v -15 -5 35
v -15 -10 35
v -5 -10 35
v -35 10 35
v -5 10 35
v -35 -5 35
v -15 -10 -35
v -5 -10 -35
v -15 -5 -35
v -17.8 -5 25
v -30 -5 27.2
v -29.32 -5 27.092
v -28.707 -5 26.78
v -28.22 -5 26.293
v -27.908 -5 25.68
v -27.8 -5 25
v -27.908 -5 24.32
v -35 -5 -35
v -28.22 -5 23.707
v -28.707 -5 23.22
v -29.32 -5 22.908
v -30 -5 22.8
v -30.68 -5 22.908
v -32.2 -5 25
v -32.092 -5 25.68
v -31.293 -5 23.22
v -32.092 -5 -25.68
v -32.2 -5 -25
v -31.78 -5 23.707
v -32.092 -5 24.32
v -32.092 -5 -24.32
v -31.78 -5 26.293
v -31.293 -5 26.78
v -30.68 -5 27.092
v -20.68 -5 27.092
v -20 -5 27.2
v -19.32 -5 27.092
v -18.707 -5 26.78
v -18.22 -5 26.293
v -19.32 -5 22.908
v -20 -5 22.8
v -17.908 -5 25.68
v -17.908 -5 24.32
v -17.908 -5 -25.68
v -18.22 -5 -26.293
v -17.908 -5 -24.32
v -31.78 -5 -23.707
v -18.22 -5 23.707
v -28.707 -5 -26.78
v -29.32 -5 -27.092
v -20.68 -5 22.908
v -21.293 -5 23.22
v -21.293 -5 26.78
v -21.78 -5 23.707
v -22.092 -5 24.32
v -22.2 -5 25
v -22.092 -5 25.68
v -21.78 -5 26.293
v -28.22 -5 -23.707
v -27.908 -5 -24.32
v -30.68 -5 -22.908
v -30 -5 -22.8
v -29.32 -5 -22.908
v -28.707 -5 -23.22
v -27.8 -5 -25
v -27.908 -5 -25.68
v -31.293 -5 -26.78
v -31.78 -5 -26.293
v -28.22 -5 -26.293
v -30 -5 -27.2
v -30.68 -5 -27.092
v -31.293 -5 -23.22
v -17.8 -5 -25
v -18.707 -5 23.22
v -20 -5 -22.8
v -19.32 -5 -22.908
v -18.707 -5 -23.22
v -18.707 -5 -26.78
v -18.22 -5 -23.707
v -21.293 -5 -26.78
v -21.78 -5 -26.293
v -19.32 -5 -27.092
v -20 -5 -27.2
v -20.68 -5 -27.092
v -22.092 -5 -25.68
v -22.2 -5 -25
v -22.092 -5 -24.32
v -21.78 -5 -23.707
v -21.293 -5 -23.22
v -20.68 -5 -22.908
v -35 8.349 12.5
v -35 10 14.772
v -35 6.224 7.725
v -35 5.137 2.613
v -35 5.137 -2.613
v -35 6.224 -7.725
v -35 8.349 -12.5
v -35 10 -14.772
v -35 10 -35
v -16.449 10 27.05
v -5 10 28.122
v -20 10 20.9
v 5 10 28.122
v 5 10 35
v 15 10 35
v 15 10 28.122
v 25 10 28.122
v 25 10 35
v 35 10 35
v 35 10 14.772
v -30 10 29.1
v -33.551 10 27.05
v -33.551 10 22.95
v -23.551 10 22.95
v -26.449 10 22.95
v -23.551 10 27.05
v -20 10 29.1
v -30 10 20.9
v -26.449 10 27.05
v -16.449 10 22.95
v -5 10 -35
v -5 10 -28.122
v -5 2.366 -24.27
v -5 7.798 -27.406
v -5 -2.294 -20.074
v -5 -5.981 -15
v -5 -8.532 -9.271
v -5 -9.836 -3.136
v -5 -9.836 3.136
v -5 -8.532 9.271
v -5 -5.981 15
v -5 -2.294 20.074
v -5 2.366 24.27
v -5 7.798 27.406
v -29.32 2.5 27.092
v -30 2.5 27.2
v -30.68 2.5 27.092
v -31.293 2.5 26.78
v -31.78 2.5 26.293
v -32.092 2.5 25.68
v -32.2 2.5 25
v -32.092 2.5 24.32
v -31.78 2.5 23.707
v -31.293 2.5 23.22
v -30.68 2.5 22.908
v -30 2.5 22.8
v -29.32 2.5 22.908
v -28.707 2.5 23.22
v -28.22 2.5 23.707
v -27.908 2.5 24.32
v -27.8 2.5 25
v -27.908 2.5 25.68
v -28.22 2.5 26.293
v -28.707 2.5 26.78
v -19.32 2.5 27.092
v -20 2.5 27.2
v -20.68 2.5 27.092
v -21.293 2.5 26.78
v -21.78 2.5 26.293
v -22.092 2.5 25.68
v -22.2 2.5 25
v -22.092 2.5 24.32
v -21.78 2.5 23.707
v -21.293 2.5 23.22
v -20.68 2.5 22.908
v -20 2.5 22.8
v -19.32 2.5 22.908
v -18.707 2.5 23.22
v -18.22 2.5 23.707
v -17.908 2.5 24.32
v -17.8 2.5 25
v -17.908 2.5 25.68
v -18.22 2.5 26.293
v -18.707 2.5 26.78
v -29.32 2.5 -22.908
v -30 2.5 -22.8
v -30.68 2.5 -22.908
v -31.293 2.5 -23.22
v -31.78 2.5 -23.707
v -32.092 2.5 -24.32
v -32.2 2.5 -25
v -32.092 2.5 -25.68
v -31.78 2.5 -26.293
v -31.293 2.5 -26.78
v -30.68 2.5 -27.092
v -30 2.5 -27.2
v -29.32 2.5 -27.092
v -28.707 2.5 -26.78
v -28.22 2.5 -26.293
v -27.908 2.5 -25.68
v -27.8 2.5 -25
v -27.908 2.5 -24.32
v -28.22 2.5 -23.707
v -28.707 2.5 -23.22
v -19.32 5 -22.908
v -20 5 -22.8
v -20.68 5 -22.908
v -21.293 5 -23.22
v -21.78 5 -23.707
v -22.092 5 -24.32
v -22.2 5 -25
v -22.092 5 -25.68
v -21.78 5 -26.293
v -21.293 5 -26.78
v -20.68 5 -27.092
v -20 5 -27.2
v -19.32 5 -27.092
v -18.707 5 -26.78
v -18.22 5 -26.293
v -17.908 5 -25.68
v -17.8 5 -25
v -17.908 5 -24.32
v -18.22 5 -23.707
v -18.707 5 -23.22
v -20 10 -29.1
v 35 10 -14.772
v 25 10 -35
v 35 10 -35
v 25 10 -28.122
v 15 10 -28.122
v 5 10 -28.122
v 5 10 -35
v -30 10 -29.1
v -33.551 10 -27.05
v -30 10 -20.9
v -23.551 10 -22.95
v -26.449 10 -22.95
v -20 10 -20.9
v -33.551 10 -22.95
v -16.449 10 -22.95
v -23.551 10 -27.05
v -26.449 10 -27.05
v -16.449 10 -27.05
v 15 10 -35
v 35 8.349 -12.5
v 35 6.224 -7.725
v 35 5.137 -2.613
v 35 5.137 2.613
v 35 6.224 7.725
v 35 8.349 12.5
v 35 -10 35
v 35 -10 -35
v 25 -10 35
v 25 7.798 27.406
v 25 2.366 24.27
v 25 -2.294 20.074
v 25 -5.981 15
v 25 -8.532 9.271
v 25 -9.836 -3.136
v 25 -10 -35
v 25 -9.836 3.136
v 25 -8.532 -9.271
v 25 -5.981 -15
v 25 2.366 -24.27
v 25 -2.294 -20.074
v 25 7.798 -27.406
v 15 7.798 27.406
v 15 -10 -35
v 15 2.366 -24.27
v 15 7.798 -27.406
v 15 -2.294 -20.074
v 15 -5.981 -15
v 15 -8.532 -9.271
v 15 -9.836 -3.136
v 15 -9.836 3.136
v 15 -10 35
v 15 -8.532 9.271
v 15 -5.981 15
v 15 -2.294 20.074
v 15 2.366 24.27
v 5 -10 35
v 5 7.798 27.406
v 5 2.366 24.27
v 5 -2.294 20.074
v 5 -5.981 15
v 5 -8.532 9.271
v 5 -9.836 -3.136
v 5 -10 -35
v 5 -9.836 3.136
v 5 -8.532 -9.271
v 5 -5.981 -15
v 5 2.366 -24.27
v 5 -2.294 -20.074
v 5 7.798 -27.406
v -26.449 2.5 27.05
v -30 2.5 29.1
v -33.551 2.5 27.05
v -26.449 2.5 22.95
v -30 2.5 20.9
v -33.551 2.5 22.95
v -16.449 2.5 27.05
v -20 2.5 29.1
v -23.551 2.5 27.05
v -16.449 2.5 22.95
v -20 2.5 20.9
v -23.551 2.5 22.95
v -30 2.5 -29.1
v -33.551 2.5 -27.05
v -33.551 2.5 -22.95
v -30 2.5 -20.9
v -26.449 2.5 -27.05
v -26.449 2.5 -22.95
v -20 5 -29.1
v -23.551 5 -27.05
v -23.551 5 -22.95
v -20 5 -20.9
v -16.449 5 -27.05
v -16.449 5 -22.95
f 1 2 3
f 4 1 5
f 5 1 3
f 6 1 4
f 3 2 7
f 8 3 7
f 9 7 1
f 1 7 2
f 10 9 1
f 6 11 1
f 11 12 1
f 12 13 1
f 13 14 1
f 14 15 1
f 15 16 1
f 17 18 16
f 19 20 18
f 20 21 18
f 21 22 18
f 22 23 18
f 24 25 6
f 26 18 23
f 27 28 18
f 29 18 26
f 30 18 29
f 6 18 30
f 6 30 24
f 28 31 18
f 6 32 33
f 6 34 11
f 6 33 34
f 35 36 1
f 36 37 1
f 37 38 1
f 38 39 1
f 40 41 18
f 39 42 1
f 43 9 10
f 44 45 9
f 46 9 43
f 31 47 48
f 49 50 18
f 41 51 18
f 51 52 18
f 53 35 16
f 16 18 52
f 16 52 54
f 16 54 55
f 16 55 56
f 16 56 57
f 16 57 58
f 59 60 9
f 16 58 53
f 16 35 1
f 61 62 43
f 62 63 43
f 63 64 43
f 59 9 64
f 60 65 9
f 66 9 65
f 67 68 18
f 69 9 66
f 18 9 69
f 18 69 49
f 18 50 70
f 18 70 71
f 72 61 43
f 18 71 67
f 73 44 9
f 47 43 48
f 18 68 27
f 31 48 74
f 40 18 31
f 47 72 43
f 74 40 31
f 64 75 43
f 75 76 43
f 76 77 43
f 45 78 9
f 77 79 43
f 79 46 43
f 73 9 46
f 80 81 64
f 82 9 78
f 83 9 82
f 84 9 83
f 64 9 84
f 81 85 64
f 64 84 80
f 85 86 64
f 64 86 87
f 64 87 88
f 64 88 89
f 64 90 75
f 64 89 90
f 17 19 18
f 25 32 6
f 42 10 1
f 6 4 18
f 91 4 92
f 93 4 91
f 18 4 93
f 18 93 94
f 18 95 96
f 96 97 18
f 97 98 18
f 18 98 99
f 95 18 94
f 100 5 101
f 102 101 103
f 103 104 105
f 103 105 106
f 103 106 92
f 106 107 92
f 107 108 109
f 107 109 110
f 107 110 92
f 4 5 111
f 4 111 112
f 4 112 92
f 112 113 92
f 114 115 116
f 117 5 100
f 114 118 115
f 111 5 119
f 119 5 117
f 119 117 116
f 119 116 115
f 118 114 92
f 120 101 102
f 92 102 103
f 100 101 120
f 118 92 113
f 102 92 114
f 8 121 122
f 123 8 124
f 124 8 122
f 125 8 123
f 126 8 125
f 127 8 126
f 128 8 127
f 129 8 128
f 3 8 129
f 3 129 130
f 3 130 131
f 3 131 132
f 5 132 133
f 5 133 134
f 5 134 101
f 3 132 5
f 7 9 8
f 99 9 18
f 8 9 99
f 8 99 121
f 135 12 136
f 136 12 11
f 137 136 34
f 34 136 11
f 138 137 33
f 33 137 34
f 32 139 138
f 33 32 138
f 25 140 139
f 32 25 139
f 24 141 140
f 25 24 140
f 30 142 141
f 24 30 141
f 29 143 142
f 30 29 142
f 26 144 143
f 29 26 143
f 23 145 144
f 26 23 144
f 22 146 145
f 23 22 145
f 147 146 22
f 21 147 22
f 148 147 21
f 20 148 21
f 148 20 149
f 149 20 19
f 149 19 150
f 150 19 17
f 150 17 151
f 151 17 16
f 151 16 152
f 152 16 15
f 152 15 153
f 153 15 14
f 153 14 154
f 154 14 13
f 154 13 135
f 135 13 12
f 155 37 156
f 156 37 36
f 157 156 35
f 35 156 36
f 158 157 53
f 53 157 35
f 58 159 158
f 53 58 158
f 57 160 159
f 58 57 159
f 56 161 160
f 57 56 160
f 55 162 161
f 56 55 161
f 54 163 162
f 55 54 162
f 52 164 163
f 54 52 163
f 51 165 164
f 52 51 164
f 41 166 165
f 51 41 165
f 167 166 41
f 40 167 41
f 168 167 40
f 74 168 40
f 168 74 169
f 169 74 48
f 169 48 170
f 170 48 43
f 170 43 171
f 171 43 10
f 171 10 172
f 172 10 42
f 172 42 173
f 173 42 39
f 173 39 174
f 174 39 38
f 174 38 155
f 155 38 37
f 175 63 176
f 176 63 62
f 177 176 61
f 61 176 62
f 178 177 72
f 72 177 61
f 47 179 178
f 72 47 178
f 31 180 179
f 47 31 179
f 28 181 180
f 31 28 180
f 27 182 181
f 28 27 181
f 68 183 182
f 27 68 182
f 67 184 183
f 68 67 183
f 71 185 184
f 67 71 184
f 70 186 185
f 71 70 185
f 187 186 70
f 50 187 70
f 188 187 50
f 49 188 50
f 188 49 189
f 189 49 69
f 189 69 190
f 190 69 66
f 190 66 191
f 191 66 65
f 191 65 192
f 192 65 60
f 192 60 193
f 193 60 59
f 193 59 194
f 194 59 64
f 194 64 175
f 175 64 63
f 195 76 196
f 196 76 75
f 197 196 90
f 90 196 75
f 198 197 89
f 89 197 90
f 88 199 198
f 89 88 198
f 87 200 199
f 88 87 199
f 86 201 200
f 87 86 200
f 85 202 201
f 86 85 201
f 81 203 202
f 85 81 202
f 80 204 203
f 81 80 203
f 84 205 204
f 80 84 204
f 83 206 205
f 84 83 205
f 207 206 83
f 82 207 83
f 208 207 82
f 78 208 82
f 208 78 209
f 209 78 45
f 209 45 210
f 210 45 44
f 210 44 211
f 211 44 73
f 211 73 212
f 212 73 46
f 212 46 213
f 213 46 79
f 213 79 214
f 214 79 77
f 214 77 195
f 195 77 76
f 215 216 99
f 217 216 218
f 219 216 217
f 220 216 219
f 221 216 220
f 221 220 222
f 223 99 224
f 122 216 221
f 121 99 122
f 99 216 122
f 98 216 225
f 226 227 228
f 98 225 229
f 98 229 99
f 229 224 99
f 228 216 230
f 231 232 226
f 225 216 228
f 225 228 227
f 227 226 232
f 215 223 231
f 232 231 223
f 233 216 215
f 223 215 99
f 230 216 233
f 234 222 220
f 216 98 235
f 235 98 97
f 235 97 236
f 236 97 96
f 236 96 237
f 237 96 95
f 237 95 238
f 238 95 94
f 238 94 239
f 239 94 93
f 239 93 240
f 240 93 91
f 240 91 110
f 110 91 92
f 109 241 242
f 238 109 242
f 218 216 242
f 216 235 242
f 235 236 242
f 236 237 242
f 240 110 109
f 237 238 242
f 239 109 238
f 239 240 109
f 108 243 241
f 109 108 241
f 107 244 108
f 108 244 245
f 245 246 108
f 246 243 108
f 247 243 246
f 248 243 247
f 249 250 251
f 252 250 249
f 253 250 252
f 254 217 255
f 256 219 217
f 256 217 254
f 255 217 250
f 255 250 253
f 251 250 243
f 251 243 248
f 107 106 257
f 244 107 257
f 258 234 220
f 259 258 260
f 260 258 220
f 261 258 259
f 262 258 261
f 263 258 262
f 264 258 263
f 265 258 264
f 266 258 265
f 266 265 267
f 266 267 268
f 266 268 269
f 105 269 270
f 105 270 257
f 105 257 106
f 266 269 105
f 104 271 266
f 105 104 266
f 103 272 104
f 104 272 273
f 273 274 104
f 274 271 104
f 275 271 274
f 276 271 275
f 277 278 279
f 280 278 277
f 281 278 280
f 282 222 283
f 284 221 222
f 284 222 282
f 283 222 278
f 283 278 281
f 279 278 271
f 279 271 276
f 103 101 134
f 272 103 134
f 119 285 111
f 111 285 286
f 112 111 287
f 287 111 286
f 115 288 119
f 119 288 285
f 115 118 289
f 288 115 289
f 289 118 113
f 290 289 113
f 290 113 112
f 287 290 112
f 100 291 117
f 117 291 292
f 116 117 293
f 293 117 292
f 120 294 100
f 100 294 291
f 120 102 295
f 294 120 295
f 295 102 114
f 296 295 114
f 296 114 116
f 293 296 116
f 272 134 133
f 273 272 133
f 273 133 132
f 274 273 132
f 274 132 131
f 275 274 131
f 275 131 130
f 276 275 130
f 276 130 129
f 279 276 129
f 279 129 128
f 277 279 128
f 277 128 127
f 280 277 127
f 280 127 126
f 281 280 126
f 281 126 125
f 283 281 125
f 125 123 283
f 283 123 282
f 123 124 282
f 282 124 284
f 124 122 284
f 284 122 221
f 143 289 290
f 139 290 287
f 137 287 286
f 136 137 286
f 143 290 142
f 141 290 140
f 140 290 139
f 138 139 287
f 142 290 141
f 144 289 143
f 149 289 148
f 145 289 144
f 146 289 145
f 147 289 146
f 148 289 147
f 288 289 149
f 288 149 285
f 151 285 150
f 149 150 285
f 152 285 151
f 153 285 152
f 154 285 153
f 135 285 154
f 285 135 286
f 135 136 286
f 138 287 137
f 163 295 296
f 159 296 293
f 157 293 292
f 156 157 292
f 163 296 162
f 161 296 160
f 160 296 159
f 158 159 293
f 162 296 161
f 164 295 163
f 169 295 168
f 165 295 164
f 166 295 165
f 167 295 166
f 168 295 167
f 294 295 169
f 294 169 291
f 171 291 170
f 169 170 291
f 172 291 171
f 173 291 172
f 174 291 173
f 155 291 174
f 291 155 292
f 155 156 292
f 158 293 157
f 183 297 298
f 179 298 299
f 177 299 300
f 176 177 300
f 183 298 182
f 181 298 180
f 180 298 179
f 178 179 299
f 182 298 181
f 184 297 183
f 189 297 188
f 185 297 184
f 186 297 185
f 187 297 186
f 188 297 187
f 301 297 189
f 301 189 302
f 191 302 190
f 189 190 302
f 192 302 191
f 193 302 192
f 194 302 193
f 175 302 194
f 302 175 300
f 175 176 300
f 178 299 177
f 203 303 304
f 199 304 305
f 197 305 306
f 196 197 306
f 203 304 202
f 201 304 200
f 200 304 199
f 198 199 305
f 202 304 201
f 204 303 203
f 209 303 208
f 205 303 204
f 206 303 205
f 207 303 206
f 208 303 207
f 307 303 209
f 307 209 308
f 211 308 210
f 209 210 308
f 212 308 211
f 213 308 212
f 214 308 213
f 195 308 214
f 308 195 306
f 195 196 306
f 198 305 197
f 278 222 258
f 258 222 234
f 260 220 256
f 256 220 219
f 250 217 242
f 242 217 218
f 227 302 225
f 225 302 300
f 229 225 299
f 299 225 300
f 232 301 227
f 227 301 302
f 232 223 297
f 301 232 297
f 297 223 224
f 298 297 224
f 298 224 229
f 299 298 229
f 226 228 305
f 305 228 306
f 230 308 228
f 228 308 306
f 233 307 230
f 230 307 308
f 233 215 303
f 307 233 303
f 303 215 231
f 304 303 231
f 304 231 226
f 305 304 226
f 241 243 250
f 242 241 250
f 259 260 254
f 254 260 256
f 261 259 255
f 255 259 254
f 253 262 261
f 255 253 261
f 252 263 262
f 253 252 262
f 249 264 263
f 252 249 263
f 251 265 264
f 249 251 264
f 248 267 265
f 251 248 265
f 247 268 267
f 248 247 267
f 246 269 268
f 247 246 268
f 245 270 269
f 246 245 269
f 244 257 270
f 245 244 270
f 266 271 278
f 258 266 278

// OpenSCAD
///////////////////////////////////////////////////////////////////////////////
//                                                                           //
//                       MaduixaCNC - BCN Dynamics                           //
//                                                                           //
///////////////////////////////////////////////////////////////////////////////
//
// File: universal-holder-CNC.scad
//
// Authors: Dani Díaz <dani@bcndynamics.com>,
//          Victor Sapena <victor@bcndynamics.com>,
//          Emili Sapena <emili@bcndynamics.com>
//
// Copyright (c) 2015 by the original authors.
//
// This file is part of MaduixaCNC.
// 
// MaduixaCNC is free: you can redistribute it and/or modify
// it under the terms of the GNU General Public License as published by
// the Free Software Foundation, either version 3 of the License, or
// (at your option) any later version.
// 
// MaduixaCNC is distributed in the hope that it will be useful,
// but WITHOUT ANY WARRANTY; without even the implied warranty of
// MERCHANTABILITY or FITNESS FOR A PARTICULAR PURPOSE.  See the
// GNU General Public License for more details.
// 
// You should have received a copy of the GNU General Public License
// along with MaduixaCNC.  If not, see <http://www.gnu.org/licenses/>.
//
// http://bcndynamics.com 
///////////////////////////////////////////////////////////////////////////////

///////////////////////////////////////////////////////////////////////////////
// Variables

rotate([0,90,0])
  union(){
    difference(){
      cube([70,20,70],center=true);
      
      translate([0,-10,-25])
	cube([70,10,20],center=true);
	
      translate([0,30,0])
	cylinder(r=25,h=80,center=true);

      difference(){
	translate([0,20,0])
	  cylinder(r=60,h=10,center=true);
	  
	translate([0,20,0])
	  cylinder(r=30,h=11,center=true);
      }
      
      difference(){
	translate([0,20,20])
	  cylinder(r=60,h=10,center=true);
	translate([0,20,20])
	  cylinder(r=30,h=11,center=true);
      }

      translate([25,0,-20])
	rotate([90,0,0])
	  cylinder(r = 2.2,h=30,$fn=20,center=true);
      translate([25,10,-20])
	rotate([90,0,0])
	  cylinder(r = 4.1,h=10,$fn=6,center=true);

      translate([25,0,-30])
	rotate([90,0,0])
	  cylinder(r = 2.2,h=30,$fn=20,center=true);
	  
      translate([25,10,-30])
	rotate([90,0,0])
	  cylinder(r = 4.1,h=15,$fn=6,center=true);

      translate([-25,0,-20])
	rotate([90,0,0])
	  cylinder(r = 2.2,h=30,$fn=20,center=true);
	  
      translate([-25,10,-20])
	rotate([90,0,0])
	  cylinder(r = 4.1,h=15,$fn=6,center=true);

      translate([-25,0,-30])
	rotate([90,0,0])
	  cylinder(r = 2.2,h=30,$fn=20,center=true);
	  
      translate([-25,10,-30])
	rotate([90,0,0])
	  cylinder(r = 4.1,h=15,$fn=6,center=true);

    }
    
  }
  
